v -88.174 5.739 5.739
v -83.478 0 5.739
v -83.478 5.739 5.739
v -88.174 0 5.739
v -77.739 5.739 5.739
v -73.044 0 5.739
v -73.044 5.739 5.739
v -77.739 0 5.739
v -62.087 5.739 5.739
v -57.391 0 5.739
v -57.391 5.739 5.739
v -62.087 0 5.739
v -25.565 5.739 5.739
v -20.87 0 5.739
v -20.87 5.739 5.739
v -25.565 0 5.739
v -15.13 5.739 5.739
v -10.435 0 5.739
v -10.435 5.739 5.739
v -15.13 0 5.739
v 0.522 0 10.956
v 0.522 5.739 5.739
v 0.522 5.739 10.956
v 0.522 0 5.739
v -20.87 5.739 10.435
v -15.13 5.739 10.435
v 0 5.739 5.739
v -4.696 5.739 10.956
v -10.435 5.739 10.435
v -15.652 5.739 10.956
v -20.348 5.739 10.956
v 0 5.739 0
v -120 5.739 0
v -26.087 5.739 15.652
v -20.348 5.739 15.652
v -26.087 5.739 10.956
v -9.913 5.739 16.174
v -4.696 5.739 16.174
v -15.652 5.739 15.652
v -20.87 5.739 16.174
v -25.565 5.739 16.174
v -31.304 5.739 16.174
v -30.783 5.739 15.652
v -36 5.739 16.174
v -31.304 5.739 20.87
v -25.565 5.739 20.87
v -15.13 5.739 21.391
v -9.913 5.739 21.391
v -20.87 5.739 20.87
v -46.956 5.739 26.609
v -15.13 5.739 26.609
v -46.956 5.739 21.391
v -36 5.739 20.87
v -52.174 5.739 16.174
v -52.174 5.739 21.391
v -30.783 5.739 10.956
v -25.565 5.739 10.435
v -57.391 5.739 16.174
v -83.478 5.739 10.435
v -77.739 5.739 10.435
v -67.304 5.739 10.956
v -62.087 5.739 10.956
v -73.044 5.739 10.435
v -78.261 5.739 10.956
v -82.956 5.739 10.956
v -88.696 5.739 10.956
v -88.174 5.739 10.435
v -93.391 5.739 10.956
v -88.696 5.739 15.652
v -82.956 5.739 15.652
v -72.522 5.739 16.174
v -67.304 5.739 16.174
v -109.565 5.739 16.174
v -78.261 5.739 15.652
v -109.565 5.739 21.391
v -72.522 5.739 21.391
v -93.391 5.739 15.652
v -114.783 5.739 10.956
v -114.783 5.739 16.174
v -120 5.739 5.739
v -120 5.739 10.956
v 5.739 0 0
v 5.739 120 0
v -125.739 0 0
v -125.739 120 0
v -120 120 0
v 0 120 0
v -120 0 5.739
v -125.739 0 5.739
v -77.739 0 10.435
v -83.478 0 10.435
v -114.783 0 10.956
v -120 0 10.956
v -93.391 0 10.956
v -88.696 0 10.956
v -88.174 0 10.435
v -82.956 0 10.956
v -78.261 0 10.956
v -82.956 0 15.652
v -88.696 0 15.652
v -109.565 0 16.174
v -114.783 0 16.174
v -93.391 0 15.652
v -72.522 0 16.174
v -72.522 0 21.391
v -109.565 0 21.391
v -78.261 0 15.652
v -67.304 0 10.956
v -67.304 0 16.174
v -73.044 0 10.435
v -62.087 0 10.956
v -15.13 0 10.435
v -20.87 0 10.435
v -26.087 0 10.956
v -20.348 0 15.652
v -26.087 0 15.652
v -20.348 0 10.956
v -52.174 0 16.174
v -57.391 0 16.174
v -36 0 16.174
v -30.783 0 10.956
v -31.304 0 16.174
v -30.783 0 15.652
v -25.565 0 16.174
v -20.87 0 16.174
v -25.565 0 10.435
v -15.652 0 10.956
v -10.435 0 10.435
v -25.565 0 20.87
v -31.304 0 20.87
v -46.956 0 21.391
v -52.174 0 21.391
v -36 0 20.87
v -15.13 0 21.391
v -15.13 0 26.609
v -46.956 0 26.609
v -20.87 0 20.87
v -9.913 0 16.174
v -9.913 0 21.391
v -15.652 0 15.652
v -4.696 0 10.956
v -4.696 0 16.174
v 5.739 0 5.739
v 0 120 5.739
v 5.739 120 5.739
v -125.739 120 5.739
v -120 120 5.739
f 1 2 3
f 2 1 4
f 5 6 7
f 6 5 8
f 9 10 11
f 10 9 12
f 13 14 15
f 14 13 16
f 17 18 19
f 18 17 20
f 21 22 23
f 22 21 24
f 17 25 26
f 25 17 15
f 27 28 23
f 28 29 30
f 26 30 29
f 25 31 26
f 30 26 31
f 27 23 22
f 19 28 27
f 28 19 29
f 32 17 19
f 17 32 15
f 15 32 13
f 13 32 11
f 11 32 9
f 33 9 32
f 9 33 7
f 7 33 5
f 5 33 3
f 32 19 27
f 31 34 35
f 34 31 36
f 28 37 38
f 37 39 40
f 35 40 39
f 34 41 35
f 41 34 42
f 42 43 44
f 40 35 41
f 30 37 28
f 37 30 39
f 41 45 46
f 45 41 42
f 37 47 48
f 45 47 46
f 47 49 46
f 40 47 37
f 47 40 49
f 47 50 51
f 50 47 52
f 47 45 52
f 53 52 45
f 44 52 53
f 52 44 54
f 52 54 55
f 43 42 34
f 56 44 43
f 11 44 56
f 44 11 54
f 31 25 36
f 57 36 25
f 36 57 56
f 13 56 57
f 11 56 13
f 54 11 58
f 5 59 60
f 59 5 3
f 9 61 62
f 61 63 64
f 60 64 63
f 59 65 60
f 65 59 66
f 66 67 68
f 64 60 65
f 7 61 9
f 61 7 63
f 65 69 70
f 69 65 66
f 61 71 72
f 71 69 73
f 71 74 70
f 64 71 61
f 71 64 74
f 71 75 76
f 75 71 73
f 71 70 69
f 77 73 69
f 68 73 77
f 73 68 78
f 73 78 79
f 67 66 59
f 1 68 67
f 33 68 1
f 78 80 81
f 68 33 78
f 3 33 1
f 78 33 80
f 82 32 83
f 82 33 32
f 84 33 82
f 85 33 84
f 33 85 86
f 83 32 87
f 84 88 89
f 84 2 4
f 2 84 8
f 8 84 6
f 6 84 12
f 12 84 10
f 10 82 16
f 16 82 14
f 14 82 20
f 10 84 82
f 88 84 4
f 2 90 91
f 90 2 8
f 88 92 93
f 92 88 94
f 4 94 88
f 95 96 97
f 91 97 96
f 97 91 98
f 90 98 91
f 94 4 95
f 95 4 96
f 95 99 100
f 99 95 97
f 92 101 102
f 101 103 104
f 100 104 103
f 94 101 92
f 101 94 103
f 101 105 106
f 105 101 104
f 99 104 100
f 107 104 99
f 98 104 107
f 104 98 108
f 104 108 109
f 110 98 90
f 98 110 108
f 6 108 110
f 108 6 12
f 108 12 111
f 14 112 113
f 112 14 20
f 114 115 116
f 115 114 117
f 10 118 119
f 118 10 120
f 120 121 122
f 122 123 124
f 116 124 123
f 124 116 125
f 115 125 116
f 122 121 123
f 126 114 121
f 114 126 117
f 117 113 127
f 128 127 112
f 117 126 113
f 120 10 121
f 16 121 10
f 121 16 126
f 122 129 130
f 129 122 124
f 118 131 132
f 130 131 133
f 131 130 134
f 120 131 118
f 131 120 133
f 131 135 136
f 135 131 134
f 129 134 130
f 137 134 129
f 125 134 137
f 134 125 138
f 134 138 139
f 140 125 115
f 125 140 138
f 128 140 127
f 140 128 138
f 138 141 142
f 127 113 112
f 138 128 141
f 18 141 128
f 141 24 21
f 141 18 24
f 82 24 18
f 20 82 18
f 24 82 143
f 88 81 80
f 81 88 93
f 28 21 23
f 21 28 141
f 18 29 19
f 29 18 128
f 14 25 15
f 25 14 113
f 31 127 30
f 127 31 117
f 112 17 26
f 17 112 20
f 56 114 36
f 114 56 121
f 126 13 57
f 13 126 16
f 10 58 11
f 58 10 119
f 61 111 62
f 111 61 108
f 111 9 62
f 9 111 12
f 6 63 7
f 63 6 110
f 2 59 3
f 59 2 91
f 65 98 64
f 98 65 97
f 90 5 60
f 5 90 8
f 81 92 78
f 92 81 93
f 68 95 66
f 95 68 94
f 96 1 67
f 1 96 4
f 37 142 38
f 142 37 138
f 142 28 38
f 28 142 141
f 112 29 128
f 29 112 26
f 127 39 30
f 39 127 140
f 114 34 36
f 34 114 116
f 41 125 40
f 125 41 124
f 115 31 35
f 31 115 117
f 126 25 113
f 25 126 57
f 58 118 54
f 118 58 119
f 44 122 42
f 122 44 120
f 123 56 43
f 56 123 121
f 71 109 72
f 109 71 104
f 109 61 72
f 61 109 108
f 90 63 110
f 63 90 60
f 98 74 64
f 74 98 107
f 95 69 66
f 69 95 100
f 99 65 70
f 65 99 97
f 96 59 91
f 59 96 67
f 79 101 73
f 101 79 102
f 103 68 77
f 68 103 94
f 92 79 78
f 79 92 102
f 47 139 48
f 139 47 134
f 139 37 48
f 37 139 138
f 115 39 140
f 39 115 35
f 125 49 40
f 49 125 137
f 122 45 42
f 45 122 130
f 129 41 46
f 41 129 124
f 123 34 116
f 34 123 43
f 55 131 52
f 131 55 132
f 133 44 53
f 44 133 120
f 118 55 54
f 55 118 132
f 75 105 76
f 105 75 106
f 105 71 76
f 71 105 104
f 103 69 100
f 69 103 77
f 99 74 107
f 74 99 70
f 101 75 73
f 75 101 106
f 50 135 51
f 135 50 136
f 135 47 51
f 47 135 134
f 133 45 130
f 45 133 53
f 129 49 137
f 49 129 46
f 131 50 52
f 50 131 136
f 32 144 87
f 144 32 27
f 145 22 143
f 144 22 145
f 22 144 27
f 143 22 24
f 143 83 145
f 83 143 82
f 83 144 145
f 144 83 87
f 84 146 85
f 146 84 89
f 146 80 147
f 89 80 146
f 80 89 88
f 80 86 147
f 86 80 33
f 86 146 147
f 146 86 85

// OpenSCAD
xyarray =
[[1,1,1,1,1,1,1,1,1,1,1,1,1,1,1,1,1,1,1,1,1,1,1]
,[1,1,0,1,0,1,1,1,1,1,1,0,1,1,0,1,0,1,1,1,1,1,1]
,[0,1,1,0,1,0,1,1,1,1,1,0,0,1,1,0,1,0,1,1,1,1]
,[0,0,1,1,0,1,0,1,1,1,0,0,0,0,1,1,1,1,1,1,1,0]
,[0,0,0,1,1,1,1,1,1,0,0,0,0,0,0,0,0,0,0,0,0,0,0,0]];

insidewidth = 120;

scaler = insidewidth/(len(xyarray[1]));

scale(scaler) {translate([-1,0,0])glasses();}
translate([0,0,0])cube([1.1*scaler,120,1.1*scaler]);
translate([-insidewidth-1.1*scaler,0,0]) cube([1.1*scaler,120,1.1*scaler]);




module glasses() {
    for(y=[0:1:len(xyarray)-1]){
        for(x=[0:1:len(xyarray[y])-1]) {
            if(xyarray[y][x] == 1) {
                translate([-x,0,y]) cube(1.1);
            }
        }
    }
}
